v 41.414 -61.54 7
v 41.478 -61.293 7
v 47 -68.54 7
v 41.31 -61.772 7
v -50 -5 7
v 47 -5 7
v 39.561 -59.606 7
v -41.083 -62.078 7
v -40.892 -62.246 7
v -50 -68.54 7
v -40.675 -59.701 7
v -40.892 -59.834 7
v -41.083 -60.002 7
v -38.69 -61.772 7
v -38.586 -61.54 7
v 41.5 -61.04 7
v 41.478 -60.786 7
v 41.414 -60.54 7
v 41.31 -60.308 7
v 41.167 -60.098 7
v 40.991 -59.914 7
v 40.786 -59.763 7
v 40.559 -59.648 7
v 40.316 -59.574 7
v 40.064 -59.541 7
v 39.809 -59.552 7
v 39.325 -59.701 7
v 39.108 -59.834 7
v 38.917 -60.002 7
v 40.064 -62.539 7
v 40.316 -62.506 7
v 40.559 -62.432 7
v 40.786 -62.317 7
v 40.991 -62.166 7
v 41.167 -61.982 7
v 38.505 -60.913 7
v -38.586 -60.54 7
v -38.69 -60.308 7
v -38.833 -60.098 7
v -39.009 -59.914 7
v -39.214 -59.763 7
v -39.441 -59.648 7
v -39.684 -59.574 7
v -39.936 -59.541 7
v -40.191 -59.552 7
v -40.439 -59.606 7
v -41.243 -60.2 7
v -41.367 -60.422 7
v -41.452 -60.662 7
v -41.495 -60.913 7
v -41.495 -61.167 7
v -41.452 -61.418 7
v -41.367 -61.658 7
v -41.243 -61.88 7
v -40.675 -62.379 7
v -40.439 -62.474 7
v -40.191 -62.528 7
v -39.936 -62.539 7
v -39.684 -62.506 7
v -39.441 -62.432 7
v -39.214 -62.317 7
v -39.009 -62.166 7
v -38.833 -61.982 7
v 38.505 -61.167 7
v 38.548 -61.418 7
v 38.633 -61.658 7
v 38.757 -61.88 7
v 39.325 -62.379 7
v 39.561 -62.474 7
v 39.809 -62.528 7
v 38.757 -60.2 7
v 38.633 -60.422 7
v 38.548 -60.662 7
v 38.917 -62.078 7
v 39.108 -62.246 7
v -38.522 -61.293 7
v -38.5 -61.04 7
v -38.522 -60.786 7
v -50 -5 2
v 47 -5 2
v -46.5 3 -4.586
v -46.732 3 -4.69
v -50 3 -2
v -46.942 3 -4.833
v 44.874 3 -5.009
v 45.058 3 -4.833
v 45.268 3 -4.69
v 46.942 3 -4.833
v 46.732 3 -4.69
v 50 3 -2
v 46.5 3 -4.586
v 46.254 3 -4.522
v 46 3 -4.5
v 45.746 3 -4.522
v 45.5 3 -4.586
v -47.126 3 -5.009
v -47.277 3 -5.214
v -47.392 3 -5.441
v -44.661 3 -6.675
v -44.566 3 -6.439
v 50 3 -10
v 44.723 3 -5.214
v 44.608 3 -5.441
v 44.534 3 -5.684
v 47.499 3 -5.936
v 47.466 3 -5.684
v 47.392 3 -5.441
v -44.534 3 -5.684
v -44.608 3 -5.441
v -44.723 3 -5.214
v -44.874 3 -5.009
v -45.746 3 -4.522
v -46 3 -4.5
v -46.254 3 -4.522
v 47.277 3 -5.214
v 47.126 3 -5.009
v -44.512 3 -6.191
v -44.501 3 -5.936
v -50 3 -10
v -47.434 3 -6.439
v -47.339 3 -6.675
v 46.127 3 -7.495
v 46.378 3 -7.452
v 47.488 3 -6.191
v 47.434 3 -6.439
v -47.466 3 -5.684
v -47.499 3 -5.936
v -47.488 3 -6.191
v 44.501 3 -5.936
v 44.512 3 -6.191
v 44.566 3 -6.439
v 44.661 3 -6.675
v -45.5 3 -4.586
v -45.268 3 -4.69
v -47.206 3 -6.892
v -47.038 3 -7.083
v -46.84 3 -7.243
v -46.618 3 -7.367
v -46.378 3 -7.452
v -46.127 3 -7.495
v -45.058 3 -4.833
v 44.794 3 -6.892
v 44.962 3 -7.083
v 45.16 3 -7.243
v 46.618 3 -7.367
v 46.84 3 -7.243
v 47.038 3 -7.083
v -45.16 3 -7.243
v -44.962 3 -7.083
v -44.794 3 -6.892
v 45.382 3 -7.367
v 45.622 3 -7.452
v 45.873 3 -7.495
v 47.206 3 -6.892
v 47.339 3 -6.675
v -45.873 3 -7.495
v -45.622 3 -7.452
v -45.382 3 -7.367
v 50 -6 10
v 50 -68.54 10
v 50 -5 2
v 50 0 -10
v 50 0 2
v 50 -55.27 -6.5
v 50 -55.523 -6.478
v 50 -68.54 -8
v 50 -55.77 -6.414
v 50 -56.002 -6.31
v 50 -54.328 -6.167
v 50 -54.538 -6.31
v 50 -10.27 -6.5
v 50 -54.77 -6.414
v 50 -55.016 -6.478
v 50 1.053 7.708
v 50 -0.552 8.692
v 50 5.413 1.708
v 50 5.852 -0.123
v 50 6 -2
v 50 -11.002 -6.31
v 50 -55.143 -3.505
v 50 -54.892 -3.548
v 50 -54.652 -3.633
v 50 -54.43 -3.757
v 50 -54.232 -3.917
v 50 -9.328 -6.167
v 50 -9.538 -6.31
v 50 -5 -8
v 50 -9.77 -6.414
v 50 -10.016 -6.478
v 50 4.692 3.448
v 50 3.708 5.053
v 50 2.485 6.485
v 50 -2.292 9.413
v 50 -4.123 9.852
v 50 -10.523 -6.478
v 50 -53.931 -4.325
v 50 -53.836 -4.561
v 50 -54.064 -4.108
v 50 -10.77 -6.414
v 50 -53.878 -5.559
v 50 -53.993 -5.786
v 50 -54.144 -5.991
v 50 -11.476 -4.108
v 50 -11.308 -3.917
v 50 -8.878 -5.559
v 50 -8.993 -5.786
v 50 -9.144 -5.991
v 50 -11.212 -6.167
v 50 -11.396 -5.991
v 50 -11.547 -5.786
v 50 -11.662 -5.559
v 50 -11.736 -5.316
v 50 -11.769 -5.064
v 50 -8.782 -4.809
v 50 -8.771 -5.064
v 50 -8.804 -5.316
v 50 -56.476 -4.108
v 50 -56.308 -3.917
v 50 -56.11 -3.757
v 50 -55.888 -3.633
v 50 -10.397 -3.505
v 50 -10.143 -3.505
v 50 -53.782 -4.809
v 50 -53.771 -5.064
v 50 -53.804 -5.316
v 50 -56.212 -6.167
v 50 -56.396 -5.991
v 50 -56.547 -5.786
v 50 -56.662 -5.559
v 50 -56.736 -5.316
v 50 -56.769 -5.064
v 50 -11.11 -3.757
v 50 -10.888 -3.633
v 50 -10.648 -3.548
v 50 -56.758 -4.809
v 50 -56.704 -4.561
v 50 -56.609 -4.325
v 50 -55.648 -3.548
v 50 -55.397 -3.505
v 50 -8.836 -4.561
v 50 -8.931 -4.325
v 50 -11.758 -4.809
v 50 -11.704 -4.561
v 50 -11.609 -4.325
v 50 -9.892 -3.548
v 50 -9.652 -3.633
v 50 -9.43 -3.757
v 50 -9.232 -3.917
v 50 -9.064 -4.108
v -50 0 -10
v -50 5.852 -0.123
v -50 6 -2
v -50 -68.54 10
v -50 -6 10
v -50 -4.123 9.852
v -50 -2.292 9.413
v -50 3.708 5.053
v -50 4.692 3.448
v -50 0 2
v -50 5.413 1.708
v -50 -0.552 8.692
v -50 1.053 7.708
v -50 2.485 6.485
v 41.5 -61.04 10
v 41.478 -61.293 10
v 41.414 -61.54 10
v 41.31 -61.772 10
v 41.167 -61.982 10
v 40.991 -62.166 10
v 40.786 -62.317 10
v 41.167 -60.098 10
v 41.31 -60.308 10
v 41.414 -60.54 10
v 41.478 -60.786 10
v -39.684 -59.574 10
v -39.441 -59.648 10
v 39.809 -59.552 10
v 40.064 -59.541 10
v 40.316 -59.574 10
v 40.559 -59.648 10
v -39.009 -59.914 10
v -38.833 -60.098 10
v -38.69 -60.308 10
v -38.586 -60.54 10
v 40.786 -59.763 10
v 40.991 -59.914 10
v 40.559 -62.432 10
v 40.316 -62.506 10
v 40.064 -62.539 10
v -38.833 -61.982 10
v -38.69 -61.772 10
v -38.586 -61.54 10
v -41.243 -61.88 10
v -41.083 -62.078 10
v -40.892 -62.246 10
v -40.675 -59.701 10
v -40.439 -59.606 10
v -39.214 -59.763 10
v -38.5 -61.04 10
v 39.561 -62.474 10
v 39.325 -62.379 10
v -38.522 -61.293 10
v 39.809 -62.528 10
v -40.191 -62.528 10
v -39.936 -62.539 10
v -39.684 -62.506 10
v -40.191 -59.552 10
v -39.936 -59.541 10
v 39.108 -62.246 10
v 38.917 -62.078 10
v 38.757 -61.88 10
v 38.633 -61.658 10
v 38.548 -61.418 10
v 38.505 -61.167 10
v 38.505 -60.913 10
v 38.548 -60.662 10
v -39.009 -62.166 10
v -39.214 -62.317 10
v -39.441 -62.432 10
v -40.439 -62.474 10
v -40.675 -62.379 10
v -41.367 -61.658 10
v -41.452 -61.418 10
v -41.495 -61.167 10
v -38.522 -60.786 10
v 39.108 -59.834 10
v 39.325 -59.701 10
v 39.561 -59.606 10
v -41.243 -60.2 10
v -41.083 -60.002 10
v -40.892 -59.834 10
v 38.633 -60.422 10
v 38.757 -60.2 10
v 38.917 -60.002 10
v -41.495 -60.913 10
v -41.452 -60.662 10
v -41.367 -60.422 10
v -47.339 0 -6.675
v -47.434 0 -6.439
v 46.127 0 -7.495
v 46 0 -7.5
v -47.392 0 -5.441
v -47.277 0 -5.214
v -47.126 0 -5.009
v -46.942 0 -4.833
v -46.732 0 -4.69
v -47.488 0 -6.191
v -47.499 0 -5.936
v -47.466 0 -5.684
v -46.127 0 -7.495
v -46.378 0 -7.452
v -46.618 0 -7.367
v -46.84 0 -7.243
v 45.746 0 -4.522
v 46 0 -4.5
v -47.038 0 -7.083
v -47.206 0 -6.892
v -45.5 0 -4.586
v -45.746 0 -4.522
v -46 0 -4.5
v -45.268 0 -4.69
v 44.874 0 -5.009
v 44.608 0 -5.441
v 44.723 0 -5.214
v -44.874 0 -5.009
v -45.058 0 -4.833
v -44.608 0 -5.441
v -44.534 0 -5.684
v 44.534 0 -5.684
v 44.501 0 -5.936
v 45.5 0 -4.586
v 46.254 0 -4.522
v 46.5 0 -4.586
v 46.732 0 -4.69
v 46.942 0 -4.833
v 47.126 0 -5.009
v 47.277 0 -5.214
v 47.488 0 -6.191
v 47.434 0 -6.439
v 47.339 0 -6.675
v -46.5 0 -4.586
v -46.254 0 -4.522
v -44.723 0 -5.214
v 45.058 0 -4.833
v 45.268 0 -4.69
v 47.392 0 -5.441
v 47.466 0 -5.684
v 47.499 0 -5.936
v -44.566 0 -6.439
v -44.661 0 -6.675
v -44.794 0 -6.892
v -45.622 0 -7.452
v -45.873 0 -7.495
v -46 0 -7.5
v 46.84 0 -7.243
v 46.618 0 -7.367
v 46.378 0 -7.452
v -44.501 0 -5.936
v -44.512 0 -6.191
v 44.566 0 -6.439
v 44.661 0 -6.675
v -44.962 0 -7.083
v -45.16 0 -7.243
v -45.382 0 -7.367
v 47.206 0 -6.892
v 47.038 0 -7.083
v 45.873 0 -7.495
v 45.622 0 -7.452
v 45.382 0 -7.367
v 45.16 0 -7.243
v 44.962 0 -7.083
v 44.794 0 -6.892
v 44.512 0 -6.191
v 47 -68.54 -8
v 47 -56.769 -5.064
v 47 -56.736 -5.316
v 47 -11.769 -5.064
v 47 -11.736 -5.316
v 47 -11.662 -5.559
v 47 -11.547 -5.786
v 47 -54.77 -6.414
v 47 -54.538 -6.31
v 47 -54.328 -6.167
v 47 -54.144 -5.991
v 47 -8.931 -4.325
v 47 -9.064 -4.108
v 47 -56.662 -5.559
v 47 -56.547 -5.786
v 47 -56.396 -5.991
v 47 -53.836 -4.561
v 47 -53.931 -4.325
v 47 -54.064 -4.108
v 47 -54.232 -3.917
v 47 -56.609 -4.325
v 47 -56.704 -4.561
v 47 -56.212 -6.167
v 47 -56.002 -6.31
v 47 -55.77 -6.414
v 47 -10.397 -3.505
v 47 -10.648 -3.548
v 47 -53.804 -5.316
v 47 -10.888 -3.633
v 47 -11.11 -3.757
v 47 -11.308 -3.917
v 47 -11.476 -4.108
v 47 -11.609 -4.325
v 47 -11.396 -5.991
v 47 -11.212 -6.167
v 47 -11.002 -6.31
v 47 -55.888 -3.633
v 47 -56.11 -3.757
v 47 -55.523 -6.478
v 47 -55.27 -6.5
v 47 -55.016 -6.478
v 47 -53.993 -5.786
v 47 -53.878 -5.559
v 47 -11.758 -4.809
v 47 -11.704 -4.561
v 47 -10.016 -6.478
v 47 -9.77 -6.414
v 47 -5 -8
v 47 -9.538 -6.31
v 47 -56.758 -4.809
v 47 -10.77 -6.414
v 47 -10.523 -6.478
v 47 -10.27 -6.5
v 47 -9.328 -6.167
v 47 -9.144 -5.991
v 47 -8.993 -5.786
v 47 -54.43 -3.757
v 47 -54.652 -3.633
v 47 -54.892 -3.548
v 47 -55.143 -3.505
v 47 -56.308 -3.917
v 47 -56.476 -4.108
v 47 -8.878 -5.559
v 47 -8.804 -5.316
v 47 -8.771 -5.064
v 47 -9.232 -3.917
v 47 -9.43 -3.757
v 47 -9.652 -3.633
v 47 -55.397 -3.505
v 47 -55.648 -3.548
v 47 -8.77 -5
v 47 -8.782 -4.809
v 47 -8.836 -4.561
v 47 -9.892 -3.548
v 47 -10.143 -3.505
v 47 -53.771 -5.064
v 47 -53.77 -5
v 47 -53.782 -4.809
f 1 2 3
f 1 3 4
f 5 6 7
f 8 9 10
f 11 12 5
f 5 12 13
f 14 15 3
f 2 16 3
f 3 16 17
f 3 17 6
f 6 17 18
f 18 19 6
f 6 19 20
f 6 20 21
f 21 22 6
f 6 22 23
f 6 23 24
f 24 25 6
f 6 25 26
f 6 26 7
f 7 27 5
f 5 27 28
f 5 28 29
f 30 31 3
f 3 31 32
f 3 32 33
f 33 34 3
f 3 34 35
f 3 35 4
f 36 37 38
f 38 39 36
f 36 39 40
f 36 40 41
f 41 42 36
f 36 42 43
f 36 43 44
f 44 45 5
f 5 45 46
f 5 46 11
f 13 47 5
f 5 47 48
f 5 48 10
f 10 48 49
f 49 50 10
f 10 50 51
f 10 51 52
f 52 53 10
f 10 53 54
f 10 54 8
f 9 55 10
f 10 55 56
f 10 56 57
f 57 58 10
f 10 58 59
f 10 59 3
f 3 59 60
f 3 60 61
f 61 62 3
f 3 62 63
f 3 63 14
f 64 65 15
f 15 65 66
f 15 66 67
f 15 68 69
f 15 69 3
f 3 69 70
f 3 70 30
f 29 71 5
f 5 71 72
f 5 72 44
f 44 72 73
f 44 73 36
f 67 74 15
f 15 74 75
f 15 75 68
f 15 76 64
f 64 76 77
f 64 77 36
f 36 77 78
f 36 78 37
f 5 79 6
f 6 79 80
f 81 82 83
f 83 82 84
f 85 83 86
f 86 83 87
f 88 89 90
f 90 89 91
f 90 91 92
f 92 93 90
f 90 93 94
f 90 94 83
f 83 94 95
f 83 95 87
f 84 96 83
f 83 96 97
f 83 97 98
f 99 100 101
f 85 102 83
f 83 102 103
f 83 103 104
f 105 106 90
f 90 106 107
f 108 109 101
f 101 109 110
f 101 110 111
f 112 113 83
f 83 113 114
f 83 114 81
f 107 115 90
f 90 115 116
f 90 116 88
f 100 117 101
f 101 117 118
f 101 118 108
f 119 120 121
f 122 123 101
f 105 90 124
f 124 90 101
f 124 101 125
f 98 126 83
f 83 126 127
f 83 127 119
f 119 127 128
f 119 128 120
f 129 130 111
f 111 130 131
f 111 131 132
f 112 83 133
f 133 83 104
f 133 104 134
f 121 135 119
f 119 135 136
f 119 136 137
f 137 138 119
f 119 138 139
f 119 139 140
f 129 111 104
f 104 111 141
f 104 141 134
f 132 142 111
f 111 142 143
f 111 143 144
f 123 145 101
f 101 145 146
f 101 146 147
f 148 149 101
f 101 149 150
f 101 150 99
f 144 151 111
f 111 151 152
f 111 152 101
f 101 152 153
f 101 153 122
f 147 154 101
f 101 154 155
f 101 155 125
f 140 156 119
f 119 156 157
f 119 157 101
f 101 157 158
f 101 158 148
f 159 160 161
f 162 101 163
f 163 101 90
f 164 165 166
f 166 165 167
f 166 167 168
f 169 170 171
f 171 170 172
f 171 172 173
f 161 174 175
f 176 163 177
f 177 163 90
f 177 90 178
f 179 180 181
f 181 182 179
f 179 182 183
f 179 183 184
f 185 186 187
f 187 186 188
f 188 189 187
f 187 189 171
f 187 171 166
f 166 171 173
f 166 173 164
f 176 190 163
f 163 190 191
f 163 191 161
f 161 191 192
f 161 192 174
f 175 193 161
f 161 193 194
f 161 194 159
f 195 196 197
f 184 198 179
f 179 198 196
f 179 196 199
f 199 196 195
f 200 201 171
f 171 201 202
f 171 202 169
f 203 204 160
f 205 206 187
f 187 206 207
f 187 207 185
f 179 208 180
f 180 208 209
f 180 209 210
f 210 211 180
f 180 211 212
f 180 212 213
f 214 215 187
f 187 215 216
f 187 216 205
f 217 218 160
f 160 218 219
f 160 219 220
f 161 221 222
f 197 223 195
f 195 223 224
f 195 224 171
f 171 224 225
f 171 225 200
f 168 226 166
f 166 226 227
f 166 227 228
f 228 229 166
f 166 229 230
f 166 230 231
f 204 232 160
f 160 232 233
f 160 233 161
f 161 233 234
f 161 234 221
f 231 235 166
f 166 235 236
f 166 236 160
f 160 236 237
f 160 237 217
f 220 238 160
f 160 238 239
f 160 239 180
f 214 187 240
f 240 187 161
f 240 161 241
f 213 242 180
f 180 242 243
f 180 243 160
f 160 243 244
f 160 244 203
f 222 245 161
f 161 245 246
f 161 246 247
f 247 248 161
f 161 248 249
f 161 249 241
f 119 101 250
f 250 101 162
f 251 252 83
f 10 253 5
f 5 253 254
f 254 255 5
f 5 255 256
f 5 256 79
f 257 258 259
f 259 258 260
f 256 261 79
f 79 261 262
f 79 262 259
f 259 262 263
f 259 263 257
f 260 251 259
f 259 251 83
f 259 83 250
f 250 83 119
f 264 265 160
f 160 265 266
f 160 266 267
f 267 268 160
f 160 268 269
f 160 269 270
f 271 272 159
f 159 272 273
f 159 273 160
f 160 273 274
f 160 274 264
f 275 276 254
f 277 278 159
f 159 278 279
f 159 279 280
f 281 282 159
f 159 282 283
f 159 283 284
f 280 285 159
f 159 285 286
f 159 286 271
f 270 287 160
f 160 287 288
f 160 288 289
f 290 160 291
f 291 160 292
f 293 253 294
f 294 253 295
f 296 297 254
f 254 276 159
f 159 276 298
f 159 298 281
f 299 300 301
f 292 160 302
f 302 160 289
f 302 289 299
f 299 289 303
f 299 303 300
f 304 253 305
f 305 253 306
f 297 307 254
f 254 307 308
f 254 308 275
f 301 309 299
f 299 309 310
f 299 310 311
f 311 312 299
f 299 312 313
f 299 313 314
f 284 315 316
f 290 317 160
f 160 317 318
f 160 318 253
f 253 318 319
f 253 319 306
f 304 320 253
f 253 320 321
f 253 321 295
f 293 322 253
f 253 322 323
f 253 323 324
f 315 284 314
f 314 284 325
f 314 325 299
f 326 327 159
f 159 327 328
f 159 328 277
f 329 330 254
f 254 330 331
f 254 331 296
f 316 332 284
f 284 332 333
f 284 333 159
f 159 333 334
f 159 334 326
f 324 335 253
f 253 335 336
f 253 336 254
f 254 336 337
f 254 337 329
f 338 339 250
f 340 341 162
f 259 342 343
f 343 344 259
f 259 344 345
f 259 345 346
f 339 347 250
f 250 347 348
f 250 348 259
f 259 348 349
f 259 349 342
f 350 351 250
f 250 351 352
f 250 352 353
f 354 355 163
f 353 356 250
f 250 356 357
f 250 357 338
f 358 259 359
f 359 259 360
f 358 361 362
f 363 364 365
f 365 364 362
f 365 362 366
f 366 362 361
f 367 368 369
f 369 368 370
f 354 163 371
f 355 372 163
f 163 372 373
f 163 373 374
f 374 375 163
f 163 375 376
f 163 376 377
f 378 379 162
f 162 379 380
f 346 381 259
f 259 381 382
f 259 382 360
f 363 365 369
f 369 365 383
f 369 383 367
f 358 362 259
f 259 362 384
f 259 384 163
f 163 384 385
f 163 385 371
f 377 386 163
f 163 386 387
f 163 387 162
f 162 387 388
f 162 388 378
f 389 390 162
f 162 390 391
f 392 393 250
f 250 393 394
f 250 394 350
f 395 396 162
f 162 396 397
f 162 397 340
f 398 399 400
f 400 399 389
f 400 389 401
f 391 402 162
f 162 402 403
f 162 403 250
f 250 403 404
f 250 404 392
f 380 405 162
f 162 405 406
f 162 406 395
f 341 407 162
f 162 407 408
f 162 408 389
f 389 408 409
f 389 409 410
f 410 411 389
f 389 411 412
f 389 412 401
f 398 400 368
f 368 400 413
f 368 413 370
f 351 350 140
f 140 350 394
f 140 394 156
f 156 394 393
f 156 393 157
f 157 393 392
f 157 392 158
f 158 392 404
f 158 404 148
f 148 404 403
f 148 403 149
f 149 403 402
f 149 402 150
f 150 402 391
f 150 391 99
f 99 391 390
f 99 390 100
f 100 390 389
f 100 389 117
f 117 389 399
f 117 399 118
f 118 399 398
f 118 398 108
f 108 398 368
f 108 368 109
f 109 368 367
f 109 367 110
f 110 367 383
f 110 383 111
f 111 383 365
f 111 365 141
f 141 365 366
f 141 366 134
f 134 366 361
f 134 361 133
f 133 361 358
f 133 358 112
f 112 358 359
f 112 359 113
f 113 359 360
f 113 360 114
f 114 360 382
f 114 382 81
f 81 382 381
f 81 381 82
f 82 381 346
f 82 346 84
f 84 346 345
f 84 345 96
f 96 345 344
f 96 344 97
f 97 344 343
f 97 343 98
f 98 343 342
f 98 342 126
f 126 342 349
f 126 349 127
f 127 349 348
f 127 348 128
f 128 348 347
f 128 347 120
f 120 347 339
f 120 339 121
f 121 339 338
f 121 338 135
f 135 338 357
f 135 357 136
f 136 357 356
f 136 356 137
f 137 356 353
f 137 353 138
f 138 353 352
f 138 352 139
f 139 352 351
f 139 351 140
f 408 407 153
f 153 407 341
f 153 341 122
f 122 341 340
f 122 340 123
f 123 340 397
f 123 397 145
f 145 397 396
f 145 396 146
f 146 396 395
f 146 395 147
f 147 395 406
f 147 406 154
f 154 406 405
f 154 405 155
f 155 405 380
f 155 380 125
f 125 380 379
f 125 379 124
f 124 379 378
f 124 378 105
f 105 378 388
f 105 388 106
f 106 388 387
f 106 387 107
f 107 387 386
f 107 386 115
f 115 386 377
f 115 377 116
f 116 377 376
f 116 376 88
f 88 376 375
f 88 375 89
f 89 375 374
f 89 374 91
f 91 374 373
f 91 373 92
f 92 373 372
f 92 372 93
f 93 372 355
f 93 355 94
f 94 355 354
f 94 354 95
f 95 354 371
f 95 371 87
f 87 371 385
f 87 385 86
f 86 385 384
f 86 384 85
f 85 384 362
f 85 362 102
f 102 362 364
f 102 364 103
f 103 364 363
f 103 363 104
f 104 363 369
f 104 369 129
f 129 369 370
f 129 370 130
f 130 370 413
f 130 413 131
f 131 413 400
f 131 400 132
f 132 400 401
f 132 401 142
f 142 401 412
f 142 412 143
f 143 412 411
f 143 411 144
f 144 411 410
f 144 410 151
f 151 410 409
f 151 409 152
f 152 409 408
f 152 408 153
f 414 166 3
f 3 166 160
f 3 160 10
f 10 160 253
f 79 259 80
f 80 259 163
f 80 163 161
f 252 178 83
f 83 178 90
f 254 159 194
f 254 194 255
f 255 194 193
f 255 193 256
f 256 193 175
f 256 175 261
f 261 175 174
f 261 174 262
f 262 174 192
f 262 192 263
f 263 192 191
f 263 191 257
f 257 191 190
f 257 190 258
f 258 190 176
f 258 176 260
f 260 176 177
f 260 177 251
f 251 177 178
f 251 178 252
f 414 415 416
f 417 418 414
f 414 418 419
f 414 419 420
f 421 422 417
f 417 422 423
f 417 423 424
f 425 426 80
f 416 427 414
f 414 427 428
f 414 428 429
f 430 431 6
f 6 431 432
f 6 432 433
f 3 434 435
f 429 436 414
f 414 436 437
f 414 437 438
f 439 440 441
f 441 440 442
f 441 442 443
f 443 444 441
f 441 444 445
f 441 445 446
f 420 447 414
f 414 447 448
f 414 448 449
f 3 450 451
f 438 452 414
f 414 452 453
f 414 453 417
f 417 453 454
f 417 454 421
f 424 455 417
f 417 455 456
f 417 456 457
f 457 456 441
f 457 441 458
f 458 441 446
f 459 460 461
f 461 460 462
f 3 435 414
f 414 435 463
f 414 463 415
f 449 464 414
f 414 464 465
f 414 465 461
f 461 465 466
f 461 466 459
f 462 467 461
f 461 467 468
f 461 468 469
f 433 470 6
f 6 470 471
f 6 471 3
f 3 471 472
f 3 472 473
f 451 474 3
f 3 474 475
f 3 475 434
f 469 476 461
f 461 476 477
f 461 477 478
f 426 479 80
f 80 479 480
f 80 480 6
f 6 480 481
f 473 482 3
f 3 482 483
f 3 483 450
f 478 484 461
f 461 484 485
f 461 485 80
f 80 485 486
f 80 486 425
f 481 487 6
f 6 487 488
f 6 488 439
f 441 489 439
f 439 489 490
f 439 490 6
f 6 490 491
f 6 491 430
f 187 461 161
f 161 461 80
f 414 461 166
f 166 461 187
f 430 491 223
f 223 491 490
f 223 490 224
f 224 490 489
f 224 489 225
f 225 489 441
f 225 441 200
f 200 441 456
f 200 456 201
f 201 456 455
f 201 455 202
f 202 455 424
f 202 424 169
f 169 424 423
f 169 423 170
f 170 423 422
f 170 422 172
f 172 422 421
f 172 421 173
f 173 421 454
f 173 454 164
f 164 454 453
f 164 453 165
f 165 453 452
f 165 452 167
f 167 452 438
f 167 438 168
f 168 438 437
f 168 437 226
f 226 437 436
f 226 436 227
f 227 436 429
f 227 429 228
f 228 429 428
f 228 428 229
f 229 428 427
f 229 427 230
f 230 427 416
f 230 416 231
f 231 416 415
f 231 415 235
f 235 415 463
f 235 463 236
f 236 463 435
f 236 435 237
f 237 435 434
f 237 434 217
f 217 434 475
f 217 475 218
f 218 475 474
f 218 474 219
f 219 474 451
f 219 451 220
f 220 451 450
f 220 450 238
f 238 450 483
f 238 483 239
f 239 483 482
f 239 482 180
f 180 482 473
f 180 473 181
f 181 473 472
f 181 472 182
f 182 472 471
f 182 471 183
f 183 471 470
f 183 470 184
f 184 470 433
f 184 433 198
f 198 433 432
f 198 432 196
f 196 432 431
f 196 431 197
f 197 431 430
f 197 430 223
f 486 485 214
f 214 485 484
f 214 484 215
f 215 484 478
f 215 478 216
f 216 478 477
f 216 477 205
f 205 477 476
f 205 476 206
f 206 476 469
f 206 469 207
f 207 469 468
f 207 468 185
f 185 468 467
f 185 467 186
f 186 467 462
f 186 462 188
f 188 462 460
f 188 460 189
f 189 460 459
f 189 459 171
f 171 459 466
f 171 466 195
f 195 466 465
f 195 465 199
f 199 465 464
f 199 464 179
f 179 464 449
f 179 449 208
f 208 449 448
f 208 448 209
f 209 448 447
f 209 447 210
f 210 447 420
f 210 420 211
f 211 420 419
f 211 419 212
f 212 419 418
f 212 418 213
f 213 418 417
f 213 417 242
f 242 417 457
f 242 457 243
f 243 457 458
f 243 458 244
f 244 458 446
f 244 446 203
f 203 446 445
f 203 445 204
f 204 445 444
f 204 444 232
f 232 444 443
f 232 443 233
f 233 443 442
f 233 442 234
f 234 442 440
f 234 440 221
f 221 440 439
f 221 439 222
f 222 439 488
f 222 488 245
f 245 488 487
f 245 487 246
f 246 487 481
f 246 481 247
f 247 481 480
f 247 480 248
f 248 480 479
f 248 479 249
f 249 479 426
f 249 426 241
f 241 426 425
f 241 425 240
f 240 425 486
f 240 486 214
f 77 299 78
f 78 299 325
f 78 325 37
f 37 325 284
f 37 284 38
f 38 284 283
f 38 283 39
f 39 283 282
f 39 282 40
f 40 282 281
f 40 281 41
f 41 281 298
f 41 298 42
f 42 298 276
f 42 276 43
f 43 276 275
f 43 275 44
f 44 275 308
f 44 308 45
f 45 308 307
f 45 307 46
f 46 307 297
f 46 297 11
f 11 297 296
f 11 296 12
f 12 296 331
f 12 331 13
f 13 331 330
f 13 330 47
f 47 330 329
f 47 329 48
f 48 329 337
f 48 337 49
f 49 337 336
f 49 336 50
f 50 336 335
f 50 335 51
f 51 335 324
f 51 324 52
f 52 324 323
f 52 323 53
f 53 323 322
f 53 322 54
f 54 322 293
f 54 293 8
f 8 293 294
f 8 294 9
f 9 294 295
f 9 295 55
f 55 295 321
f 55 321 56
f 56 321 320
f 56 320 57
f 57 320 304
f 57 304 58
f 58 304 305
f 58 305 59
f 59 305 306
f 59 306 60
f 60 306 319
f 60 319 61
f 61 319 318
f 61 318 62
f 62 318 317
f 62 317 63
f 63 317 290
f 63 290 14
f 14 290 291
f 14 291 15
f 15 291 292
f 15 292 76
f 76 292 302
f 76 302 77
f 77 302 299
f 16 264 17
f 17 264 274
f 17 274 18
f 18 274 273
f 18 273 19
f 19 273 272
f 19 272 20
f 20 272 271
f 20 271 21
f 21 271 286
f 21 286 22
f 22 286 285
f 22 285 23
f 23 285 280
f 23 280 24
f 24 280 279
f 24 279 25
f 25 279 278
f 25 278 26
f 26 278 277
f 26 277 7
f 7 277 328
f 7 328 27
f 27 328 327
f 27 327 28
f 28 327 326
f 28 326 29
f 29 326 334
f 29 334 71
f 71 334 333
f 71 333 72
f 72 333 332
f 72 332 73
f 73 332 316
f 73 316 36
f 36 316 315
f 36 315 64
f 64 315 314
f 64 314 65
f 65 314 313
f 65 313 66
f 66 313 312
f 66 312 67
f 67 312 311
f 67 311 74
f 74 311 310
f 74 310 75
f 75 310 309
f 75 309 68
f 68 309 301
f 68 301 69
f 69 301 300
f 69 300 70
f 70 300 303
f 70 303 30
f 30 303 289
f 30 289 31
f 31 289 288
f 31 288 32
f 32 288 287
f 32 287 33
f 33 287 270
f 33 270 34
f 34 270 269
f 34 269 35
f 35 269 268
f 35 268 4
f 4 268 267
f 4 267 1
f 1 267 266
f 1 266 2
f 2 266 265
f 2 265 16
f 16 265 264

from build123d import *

# Parameters (mm, degrees)
SKETCH1_W           = 100
SKETCH1_H           = 20
BOSS_EXTRUDE1_DEPTH = 3
CUT_EXTRUDE1_REACH  = 53.078
SKETCH2_R           = 1.5
LPATTERN1_COUNT     = 2
LPATTERN1_PITCH     = 92
SKETCH3_W           = 100
SKETCH3_H           = 3
BOSS_EXTRUDE2_DEPTH = 68.54
SKETCH4_W           = 100
SKETCH4_H           = 5
BOSS_EXTRUDE3_DEPTH = 5
SKETCH5_W           = 100
SKETCH5_H           = 12
BOSS_EXTRUDE4_DEPTH = 3
FILLET4_R           = 12
SKETCH6_W           = 3
SKETCH6_H           = 63.54
BOSS_EXTRUDE5_DEPTH = 15
CUT_EXTRUDE2_REACH  = 123.646
SKETCH7_R           = 1.5
CUT_EXTRUDE3_REACH  = 89.165
SKETCH8_R           = 1.5
LPATTERN2_COUNT     = 2
LPATTERN2_PITCH     = 80


with BuildPart() as part:
    # Sketch1 → Boss-Extrude1 (new body)
    with BuildSketch(Plane(origin=(0, 0, 0), x_dir=(1, 0, 0), z_dir=(0, 1, 0))):
        Rectangle(SKETCH1_W, SKETCH1_H)
    extrude(amount=BOSS_EXTRUDE1_DEPTH)

    # Sketch2 → Cut-Extrude1 (cut, up to next)
    with BuildSketch(Plane(origin=(0, 3, 0), x_dir=(1, 0, 0), z_dir=(0, 1, 0)), mode=Mode.PRIVATE) as cut_extrude1_sk1:
        with Locations(Location((-46, 6, 0), (0, 0, 270))):
            Circle(SKETCH2_R)
    cut_extrude1_tool1 = extrude(cut_extrude1_sk1.sketch, amount=-CUT_EXTRUDE1_REACH, mode=Mode.PRIVATE) & part.part
    cut_extrude1 = cut_extrude1_tool1.solids().sort_by_distance((-46, 3, -6))[0]
    add(cut_extrude1, mode=Mode.SUBTRACT)

    # LPattern1: Cut-Extrude1 ×2
    with Locations(*[(i * LPATTERN1_PITCH, 0, 0) for i in range(1, LPATTERN1_COUNT)]):
        add(cut_extrude1, mode=Mode.SUBTRACT)

    # Sketch3 → Boss-Extrude2 (add)
    with BuildSketch(Plane.XZ):
        with Locations((0, 8.5)):
            Rectangle(SKETCH3_W, SKETCH3_H)
    extrude(amount=BOSS_EXTRUDE2_DEPTH)

    # Sketch4 → Boss-Extrude3 (add)
    with BuildSketch(Plane(origin=(0, 0, 7), x_dir=(-1, 0, 0), z_dir=(0, 0, -1))):
        with Locations((0, -2.5)):
            Rectangle(SKETCH4_W, SKETCH4_H)
    extrude(amount=BOSS_EXTRUDE3_DEPTH)

    # Sketch5 → Boss-Extrude4 (add)
    with BuildSketch(Plane(origin=(0, 3, 0), x_dir=(1, 0, 0), z_dir=(0, 1, 0))):
        with Locations((0, -4)):
            Rectangle(SKETCH5_W, SKETCH5_H)
    extrude(amount=BOSS_EXTRUDE4_DEPTH)

    # Fillet4
    fillet4_edges = [part.edges().sort_by_distance(p)[0] for p in [
        (0, 6, 10),
    ]]
    fillet(fillet4_edges, radius=FILLET4_R - 0.0001)  # a hair under: the kernel refuses the full size

    # Sketch6 → Boss-Extrude5 (add)
    with BuildSketch(Plane(origin=(0, 0, 7), x_dir=(-1, 0, 0), z_dir=(0, 0, -1))):
        with Locations((-48.5, -36.77)):
            Rectangle(SKETCH6_W, SKETCH6_H)
    extrude(amount=BOSS_EXTRUDE5_DEPTH)

    # Sketch7 → Cut-Extrude2 (cut, up to next)
    with BuildSketch(Plane(origin=(50, 0, 0), x_dir=(0, 0, -1), z_dir=(1, 0, 0)), mode=Mode.PRIVATE) as cut_extrude2_sk1:
        with Locations((5, -10.27)):
            Circle(SKETCH7_R)
    cut_extrude2_tool1 = extrude(cut_extrude2_sk1.sketch, amount=-CUT_EXTRUDE2_REACH, mode=Mode.PRIVATE) & part.part
    # Sketch7 → Cut-Extrude2 (cut, up to next)
    with BuildSketch(Plane(origin=(50, 0, 0), x_dir=(0, 0, -1), z_dir=(1, 0, 0)), mode=Mode.PRIVATE) as cut_extrude2_sk2:
        with Locations((5, -55.27)):
            Circle(SKETCH7_R)
    cut_extrude2_tool2 = extrude(cut_extrude2_sk2.sketch, amount=-CUT_EXTRUDE2_REACH, mode=Mode.PRIVATE) & part.part
    add(cut_extrude2_tool1.solids().sort_by_distance((50, -10.27, -5))[0], mode=Mode.SUBTRACT)
    add(cut_extrude2_tool2.solids().sort_by_distance((50, -55.27, -5))[0], mode=Mode.SUBTRACT)

    # Sketch8 → Cut-Extrude3 (cut, up to next)
    with BuildSketch(Plane.XY.offset(10), mode=Mode.PRIVATE) as cut_extrude3_sk1:
        with Locations((-40, -61.04)):
            Circle(SKETCH8_R)
    cut_extrude3_tool1 = extrude(cut_extrude3_sk1.sketch, amount=-CUT_EXTRUDE3_REACH, mode=Mode.PRIVATE) & part.part
    cut_extrude3 = cut_extrude3_tool1.solids().sort_by_distance((-40, -61.04, 10))[0]
    add(cut_extrude3, mode=Mode.SUBTRACT)

    # LPattern2: Cut-Extrude3 ×2
    with Locations(*[(i * LPATTERN2_PITCH, 0, 0) for i in range(1, LPATTERN2_COUNT)]):
        add(cut_extrude3, mode=Mode.SUBTRACT)


solid = part.part
